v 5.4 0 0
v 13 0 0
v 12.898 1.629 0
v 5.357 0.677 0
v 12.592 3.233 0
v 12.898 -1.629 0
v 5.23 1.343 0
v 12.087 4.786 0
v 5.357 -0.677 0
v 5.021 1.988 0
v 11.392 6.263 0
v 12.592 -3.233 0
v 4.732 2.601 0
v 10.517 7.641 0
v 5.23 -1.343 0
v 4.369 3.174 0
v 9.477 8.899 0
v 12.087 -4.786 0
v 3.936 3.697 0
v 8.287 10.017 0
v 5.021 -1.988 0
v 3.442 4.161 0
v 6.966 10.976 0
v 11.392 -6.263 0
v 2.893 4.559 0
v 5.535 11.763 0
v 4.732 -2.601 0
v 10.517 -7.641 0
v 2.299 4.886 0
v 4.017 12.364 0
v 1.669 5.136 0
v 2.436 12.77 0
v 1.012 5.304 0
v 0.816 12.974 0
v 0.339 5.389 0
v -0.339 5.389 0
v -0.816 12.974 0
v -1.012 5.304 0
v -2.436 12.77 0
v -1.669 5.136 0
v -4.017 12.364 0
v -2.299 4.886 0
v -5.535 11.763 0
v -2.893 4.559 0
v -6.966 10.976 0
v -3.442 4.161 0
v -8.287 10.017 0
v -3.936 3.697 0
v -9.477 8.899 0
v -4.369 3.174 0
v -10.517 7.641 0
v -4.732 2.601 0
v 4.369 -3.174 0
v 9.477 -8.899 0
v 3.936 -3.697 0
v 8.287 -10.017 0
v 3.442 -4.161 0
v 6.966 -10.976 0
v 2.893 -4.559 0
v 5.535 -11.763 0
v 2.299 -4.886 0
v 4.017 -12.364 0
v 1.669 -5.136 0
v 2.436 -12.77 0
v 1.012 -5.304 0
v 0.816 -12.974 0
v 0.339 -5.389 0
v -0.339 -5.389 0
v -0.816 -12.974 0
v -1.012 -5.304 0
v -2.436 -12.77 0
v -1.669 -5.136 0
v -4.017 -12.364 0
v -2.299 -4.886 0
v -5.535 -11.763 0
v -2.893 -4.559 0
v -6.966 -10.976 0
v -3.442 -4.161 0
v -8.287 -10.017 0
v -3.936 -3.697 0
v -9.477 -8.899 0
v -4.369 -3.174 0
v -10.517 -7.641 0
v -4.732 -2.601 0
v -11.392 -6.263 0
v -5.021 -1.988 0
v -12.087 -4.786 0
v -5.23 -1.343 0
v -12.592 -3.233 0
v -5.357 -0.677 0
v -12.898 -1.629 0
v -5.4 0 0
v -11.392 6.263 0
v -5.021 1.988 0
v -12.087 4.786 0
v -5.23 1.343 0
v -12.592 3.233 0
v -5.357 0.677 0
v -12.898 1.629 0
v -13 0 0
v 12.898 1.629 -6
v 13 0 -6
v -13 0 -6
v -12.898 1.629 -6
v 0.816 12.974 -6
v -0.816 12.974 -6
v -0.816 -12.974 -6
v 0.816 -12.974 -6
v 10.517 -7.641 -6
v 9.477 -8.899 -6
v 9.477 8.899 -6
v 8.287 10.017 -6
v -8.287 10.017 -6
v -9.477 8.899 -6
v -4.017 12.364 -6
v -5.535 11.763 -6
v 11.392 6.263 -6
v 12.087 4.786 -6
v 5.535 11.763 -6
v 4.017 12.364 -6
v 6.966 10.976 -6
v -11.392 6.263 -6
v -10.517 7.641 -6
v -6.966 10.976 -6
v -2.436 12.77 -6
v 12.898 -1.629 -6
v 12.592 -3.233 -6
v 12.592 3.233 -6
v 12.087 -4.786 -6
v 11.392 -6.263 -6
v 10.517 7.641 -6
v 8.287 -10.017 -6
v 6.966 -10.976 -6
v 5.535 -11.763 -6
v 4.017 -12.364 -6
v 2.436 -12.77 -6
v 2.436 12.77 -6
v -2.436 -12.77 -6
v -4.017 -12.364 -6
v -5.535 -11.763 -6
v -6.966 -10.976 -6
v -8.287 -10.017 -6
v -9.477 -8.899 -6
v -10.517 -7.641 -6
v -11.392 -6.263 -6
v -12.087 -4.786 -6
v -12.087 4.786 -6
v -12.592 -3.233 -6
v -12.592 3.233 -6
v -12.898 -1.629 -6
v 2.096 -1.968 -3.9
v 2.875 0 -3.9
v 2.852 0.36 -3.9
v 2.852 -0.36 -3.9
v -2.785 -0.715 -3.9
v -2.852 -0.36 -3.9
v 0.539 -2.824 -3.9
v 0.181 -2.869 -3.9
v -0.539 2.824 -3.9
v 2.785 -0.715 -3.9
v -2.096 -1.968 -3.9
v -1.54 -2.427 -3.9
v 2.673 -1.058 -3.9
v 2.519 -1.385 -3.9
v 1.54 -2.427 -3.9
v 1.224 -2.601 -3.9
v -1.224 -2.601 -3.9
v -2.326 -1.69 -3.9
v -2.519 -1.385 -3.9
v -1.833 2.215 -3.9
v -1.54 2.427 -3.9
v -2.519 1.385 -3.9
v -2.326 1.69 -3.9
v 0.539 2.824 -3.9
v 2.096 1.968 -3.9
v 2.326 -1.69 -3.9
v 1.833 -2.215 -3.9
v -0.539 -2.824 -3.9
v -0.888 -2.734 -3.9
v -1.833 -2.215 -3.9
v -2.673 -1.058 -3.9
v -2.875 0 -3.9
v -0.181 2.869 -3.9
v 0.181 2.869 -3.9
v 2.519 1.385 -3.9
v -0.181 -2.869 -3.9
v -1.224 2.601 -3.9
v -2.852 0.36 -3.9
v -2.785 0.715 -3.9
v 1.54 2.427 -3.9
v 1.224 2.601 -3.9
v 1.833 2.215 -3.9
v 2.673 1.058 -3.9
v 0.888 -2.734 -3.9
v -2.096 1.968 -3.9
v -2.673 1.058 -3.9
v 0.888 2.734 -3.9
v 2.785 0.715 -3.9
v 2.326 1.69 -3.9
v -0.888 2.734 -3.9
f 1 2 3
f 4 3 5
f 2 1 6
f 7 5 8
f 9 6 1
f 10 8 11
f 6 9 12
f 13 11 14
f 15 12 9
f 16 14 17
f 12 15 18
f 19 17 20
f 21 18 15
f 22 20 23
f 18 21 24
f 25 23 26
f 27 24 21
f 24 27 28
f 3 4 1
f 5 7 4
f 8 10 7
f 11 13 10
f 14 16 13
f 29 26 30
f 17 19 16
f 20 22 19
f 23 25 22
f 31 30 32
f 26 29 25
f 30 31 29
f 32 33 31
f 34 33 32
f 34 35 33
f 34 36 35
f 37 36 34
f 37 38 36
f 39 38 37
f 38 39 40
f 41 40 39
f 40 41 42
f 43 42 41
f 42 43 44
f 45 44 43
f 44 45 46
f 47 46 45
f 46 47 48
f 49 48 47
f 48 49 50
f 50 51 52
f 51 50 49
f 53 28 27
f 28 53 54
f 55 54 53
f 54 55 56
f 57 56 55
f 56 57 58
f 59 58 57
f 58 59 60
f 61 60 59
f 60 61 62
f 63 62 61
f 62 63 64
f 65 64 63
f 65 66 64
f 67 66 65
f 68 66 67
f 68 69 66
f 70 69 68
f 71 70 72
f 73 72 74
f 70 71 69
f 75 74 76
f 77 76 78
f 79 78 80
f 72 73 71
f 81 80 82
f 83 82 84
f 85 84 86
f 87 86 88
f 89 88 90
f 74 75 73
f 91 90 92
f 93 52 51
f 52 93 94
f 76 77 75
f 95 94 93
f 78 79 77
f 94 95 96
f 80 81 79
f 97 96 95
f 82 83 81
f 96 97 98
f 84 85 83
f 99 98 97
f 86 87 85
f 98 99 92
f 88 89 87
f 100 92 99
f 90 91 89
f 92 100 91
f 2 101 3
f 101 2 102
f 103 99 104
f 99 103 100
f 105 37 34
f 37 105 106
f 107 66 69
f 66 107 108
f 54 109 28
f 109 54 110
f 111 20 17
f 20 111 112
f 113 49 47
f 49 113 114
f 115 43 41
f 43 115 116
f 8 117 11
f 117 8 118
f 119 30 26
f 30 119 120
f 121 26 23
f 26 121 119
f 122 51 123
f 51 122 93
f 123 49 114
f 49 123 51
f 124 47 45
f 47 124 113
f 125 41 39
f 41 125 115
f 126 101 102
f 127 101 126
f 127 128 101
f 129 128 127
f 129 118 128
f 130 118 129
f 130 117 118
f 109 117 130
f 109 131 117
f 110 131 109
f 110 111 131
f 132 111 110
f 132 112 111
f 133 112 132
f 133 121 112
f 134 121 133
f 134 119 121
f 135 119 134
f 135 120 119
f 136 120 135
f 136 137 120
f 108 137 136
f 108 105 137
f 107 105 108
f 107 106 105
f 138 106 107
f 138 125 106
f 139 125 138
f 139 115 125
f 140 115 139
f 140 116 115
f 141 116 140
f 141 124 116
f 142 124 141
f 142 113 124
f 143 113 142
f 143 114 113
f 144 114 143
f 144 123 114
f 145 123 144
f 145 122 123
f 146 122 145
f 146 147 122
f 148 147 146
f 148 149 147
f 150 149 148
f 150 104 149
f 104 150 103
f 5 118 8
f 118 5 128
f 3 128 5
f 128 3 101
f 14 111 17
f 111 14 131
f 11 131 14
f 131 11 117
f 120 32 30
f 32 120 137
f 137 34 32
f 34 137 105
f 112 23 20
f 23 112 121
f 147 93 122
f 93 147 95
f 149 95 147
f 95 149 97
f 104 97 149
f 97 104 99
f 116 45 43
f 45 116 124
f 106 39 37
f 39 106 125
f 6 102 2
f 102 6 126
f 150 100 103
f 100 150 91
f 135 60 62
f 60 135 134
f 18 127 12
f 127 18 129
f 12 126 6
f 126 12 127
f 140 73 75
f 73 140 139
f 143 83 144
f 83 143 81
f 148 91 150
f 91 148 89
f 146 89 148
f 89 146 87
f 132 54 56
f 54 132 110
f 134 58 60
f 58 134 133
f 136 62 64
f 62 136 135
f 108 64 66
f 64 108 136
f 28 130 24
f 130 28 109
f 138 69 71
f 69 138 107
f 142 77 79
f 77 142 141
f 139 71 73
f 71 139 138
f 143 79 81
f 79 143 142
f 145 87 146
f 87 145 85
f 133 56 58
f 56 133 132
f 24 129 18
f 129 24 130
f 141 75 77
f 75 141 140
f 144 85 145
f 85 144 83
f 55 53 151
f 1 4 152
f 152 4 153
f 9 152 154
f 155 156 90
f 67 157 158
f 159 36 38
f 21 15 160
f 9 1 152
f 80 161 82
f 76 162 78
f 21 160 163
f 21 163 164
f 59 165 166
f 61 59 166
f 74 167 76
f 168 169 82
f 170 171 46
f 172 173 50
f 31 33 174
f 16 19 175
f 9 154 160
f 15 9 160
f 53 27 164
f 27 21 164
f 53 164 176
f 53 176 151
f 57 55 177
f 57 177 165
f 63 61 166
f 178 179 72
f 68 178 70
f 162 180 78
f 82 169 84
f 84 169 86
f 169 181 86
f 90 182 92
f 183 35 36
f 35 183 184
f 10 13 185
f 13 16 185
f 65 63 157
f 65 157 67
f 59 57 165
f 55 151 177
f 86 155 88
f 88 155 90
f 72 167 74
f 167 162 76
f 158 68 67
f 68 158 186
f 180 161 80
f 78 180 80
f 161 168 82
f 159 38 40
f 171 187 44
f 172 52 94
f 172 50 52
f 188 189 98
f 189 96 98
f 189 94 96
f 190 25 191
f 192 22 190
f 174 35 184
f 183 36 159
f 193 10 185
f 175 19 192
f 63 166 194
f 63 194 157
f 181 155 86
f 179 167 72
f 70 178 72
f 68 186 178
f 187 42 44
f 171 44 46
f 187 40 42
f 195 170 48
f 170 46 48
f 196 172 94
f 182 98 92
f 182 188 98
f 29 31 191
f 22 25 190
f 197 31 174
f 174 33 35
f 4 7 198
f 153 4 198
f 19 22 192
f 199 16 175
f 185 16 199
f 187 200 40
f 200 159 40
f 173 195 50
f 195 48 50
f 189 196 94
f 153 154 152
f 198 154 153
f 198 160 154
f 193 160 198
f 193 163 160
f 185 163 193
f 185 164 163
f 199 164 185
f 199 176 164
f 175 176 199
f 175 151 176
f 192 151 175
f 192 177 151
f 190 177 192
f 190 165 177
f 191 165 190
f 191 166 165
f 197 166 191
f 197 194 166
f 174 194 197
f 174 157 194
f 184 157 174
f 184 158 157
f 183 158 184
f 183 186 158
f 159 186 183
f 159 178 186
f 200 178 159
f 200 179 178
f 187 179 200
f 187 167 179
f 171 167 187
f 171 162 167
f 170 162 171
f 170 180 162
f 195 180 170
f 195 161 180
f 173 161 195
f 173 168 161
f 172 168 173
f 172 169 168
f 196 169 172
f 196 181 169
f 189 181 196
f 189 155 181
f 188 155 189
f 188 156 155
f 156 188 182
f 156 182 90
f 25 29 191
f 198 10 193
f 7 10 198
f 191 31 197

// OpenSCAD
$fn = 50;


difference() {
	union() {
		translate(v = [0, 0, -3.0000000000]) {
			cylinder(h = 3, r = 7.0000000000);
		}
		translate(v = [0, 0, -6.0000000000]) {
			cylinder(h = 6, r = 13.0000000000);
		}
	}
	union() {
		translate(v = [0, 0, 0]) {
			rotate(a = [0, 0, 0]) {
				difference() {
					union() {
						#translate(v = [0, 0, -3.0000000000]) {
							cylinder(h = 3, r = 2.6000000000);
						}
						#translate(v = [0, 0, -3.9000000000]) {
							cylinder(h = 3.9000000000, r1 = 2.8750000000, r2 = 5.4000000000);
						}
						#translate(v = [0, 0, -3.0000000000]) {
							cylinder(h = 3, r = 2.8750000000);
						}
						#translate(v = [0, 0, -3.0000000000]) {
							cylinder(h = 3, r = 2.6000000000);
						}
					}
					union();
				}
			}
		}
	}
}
